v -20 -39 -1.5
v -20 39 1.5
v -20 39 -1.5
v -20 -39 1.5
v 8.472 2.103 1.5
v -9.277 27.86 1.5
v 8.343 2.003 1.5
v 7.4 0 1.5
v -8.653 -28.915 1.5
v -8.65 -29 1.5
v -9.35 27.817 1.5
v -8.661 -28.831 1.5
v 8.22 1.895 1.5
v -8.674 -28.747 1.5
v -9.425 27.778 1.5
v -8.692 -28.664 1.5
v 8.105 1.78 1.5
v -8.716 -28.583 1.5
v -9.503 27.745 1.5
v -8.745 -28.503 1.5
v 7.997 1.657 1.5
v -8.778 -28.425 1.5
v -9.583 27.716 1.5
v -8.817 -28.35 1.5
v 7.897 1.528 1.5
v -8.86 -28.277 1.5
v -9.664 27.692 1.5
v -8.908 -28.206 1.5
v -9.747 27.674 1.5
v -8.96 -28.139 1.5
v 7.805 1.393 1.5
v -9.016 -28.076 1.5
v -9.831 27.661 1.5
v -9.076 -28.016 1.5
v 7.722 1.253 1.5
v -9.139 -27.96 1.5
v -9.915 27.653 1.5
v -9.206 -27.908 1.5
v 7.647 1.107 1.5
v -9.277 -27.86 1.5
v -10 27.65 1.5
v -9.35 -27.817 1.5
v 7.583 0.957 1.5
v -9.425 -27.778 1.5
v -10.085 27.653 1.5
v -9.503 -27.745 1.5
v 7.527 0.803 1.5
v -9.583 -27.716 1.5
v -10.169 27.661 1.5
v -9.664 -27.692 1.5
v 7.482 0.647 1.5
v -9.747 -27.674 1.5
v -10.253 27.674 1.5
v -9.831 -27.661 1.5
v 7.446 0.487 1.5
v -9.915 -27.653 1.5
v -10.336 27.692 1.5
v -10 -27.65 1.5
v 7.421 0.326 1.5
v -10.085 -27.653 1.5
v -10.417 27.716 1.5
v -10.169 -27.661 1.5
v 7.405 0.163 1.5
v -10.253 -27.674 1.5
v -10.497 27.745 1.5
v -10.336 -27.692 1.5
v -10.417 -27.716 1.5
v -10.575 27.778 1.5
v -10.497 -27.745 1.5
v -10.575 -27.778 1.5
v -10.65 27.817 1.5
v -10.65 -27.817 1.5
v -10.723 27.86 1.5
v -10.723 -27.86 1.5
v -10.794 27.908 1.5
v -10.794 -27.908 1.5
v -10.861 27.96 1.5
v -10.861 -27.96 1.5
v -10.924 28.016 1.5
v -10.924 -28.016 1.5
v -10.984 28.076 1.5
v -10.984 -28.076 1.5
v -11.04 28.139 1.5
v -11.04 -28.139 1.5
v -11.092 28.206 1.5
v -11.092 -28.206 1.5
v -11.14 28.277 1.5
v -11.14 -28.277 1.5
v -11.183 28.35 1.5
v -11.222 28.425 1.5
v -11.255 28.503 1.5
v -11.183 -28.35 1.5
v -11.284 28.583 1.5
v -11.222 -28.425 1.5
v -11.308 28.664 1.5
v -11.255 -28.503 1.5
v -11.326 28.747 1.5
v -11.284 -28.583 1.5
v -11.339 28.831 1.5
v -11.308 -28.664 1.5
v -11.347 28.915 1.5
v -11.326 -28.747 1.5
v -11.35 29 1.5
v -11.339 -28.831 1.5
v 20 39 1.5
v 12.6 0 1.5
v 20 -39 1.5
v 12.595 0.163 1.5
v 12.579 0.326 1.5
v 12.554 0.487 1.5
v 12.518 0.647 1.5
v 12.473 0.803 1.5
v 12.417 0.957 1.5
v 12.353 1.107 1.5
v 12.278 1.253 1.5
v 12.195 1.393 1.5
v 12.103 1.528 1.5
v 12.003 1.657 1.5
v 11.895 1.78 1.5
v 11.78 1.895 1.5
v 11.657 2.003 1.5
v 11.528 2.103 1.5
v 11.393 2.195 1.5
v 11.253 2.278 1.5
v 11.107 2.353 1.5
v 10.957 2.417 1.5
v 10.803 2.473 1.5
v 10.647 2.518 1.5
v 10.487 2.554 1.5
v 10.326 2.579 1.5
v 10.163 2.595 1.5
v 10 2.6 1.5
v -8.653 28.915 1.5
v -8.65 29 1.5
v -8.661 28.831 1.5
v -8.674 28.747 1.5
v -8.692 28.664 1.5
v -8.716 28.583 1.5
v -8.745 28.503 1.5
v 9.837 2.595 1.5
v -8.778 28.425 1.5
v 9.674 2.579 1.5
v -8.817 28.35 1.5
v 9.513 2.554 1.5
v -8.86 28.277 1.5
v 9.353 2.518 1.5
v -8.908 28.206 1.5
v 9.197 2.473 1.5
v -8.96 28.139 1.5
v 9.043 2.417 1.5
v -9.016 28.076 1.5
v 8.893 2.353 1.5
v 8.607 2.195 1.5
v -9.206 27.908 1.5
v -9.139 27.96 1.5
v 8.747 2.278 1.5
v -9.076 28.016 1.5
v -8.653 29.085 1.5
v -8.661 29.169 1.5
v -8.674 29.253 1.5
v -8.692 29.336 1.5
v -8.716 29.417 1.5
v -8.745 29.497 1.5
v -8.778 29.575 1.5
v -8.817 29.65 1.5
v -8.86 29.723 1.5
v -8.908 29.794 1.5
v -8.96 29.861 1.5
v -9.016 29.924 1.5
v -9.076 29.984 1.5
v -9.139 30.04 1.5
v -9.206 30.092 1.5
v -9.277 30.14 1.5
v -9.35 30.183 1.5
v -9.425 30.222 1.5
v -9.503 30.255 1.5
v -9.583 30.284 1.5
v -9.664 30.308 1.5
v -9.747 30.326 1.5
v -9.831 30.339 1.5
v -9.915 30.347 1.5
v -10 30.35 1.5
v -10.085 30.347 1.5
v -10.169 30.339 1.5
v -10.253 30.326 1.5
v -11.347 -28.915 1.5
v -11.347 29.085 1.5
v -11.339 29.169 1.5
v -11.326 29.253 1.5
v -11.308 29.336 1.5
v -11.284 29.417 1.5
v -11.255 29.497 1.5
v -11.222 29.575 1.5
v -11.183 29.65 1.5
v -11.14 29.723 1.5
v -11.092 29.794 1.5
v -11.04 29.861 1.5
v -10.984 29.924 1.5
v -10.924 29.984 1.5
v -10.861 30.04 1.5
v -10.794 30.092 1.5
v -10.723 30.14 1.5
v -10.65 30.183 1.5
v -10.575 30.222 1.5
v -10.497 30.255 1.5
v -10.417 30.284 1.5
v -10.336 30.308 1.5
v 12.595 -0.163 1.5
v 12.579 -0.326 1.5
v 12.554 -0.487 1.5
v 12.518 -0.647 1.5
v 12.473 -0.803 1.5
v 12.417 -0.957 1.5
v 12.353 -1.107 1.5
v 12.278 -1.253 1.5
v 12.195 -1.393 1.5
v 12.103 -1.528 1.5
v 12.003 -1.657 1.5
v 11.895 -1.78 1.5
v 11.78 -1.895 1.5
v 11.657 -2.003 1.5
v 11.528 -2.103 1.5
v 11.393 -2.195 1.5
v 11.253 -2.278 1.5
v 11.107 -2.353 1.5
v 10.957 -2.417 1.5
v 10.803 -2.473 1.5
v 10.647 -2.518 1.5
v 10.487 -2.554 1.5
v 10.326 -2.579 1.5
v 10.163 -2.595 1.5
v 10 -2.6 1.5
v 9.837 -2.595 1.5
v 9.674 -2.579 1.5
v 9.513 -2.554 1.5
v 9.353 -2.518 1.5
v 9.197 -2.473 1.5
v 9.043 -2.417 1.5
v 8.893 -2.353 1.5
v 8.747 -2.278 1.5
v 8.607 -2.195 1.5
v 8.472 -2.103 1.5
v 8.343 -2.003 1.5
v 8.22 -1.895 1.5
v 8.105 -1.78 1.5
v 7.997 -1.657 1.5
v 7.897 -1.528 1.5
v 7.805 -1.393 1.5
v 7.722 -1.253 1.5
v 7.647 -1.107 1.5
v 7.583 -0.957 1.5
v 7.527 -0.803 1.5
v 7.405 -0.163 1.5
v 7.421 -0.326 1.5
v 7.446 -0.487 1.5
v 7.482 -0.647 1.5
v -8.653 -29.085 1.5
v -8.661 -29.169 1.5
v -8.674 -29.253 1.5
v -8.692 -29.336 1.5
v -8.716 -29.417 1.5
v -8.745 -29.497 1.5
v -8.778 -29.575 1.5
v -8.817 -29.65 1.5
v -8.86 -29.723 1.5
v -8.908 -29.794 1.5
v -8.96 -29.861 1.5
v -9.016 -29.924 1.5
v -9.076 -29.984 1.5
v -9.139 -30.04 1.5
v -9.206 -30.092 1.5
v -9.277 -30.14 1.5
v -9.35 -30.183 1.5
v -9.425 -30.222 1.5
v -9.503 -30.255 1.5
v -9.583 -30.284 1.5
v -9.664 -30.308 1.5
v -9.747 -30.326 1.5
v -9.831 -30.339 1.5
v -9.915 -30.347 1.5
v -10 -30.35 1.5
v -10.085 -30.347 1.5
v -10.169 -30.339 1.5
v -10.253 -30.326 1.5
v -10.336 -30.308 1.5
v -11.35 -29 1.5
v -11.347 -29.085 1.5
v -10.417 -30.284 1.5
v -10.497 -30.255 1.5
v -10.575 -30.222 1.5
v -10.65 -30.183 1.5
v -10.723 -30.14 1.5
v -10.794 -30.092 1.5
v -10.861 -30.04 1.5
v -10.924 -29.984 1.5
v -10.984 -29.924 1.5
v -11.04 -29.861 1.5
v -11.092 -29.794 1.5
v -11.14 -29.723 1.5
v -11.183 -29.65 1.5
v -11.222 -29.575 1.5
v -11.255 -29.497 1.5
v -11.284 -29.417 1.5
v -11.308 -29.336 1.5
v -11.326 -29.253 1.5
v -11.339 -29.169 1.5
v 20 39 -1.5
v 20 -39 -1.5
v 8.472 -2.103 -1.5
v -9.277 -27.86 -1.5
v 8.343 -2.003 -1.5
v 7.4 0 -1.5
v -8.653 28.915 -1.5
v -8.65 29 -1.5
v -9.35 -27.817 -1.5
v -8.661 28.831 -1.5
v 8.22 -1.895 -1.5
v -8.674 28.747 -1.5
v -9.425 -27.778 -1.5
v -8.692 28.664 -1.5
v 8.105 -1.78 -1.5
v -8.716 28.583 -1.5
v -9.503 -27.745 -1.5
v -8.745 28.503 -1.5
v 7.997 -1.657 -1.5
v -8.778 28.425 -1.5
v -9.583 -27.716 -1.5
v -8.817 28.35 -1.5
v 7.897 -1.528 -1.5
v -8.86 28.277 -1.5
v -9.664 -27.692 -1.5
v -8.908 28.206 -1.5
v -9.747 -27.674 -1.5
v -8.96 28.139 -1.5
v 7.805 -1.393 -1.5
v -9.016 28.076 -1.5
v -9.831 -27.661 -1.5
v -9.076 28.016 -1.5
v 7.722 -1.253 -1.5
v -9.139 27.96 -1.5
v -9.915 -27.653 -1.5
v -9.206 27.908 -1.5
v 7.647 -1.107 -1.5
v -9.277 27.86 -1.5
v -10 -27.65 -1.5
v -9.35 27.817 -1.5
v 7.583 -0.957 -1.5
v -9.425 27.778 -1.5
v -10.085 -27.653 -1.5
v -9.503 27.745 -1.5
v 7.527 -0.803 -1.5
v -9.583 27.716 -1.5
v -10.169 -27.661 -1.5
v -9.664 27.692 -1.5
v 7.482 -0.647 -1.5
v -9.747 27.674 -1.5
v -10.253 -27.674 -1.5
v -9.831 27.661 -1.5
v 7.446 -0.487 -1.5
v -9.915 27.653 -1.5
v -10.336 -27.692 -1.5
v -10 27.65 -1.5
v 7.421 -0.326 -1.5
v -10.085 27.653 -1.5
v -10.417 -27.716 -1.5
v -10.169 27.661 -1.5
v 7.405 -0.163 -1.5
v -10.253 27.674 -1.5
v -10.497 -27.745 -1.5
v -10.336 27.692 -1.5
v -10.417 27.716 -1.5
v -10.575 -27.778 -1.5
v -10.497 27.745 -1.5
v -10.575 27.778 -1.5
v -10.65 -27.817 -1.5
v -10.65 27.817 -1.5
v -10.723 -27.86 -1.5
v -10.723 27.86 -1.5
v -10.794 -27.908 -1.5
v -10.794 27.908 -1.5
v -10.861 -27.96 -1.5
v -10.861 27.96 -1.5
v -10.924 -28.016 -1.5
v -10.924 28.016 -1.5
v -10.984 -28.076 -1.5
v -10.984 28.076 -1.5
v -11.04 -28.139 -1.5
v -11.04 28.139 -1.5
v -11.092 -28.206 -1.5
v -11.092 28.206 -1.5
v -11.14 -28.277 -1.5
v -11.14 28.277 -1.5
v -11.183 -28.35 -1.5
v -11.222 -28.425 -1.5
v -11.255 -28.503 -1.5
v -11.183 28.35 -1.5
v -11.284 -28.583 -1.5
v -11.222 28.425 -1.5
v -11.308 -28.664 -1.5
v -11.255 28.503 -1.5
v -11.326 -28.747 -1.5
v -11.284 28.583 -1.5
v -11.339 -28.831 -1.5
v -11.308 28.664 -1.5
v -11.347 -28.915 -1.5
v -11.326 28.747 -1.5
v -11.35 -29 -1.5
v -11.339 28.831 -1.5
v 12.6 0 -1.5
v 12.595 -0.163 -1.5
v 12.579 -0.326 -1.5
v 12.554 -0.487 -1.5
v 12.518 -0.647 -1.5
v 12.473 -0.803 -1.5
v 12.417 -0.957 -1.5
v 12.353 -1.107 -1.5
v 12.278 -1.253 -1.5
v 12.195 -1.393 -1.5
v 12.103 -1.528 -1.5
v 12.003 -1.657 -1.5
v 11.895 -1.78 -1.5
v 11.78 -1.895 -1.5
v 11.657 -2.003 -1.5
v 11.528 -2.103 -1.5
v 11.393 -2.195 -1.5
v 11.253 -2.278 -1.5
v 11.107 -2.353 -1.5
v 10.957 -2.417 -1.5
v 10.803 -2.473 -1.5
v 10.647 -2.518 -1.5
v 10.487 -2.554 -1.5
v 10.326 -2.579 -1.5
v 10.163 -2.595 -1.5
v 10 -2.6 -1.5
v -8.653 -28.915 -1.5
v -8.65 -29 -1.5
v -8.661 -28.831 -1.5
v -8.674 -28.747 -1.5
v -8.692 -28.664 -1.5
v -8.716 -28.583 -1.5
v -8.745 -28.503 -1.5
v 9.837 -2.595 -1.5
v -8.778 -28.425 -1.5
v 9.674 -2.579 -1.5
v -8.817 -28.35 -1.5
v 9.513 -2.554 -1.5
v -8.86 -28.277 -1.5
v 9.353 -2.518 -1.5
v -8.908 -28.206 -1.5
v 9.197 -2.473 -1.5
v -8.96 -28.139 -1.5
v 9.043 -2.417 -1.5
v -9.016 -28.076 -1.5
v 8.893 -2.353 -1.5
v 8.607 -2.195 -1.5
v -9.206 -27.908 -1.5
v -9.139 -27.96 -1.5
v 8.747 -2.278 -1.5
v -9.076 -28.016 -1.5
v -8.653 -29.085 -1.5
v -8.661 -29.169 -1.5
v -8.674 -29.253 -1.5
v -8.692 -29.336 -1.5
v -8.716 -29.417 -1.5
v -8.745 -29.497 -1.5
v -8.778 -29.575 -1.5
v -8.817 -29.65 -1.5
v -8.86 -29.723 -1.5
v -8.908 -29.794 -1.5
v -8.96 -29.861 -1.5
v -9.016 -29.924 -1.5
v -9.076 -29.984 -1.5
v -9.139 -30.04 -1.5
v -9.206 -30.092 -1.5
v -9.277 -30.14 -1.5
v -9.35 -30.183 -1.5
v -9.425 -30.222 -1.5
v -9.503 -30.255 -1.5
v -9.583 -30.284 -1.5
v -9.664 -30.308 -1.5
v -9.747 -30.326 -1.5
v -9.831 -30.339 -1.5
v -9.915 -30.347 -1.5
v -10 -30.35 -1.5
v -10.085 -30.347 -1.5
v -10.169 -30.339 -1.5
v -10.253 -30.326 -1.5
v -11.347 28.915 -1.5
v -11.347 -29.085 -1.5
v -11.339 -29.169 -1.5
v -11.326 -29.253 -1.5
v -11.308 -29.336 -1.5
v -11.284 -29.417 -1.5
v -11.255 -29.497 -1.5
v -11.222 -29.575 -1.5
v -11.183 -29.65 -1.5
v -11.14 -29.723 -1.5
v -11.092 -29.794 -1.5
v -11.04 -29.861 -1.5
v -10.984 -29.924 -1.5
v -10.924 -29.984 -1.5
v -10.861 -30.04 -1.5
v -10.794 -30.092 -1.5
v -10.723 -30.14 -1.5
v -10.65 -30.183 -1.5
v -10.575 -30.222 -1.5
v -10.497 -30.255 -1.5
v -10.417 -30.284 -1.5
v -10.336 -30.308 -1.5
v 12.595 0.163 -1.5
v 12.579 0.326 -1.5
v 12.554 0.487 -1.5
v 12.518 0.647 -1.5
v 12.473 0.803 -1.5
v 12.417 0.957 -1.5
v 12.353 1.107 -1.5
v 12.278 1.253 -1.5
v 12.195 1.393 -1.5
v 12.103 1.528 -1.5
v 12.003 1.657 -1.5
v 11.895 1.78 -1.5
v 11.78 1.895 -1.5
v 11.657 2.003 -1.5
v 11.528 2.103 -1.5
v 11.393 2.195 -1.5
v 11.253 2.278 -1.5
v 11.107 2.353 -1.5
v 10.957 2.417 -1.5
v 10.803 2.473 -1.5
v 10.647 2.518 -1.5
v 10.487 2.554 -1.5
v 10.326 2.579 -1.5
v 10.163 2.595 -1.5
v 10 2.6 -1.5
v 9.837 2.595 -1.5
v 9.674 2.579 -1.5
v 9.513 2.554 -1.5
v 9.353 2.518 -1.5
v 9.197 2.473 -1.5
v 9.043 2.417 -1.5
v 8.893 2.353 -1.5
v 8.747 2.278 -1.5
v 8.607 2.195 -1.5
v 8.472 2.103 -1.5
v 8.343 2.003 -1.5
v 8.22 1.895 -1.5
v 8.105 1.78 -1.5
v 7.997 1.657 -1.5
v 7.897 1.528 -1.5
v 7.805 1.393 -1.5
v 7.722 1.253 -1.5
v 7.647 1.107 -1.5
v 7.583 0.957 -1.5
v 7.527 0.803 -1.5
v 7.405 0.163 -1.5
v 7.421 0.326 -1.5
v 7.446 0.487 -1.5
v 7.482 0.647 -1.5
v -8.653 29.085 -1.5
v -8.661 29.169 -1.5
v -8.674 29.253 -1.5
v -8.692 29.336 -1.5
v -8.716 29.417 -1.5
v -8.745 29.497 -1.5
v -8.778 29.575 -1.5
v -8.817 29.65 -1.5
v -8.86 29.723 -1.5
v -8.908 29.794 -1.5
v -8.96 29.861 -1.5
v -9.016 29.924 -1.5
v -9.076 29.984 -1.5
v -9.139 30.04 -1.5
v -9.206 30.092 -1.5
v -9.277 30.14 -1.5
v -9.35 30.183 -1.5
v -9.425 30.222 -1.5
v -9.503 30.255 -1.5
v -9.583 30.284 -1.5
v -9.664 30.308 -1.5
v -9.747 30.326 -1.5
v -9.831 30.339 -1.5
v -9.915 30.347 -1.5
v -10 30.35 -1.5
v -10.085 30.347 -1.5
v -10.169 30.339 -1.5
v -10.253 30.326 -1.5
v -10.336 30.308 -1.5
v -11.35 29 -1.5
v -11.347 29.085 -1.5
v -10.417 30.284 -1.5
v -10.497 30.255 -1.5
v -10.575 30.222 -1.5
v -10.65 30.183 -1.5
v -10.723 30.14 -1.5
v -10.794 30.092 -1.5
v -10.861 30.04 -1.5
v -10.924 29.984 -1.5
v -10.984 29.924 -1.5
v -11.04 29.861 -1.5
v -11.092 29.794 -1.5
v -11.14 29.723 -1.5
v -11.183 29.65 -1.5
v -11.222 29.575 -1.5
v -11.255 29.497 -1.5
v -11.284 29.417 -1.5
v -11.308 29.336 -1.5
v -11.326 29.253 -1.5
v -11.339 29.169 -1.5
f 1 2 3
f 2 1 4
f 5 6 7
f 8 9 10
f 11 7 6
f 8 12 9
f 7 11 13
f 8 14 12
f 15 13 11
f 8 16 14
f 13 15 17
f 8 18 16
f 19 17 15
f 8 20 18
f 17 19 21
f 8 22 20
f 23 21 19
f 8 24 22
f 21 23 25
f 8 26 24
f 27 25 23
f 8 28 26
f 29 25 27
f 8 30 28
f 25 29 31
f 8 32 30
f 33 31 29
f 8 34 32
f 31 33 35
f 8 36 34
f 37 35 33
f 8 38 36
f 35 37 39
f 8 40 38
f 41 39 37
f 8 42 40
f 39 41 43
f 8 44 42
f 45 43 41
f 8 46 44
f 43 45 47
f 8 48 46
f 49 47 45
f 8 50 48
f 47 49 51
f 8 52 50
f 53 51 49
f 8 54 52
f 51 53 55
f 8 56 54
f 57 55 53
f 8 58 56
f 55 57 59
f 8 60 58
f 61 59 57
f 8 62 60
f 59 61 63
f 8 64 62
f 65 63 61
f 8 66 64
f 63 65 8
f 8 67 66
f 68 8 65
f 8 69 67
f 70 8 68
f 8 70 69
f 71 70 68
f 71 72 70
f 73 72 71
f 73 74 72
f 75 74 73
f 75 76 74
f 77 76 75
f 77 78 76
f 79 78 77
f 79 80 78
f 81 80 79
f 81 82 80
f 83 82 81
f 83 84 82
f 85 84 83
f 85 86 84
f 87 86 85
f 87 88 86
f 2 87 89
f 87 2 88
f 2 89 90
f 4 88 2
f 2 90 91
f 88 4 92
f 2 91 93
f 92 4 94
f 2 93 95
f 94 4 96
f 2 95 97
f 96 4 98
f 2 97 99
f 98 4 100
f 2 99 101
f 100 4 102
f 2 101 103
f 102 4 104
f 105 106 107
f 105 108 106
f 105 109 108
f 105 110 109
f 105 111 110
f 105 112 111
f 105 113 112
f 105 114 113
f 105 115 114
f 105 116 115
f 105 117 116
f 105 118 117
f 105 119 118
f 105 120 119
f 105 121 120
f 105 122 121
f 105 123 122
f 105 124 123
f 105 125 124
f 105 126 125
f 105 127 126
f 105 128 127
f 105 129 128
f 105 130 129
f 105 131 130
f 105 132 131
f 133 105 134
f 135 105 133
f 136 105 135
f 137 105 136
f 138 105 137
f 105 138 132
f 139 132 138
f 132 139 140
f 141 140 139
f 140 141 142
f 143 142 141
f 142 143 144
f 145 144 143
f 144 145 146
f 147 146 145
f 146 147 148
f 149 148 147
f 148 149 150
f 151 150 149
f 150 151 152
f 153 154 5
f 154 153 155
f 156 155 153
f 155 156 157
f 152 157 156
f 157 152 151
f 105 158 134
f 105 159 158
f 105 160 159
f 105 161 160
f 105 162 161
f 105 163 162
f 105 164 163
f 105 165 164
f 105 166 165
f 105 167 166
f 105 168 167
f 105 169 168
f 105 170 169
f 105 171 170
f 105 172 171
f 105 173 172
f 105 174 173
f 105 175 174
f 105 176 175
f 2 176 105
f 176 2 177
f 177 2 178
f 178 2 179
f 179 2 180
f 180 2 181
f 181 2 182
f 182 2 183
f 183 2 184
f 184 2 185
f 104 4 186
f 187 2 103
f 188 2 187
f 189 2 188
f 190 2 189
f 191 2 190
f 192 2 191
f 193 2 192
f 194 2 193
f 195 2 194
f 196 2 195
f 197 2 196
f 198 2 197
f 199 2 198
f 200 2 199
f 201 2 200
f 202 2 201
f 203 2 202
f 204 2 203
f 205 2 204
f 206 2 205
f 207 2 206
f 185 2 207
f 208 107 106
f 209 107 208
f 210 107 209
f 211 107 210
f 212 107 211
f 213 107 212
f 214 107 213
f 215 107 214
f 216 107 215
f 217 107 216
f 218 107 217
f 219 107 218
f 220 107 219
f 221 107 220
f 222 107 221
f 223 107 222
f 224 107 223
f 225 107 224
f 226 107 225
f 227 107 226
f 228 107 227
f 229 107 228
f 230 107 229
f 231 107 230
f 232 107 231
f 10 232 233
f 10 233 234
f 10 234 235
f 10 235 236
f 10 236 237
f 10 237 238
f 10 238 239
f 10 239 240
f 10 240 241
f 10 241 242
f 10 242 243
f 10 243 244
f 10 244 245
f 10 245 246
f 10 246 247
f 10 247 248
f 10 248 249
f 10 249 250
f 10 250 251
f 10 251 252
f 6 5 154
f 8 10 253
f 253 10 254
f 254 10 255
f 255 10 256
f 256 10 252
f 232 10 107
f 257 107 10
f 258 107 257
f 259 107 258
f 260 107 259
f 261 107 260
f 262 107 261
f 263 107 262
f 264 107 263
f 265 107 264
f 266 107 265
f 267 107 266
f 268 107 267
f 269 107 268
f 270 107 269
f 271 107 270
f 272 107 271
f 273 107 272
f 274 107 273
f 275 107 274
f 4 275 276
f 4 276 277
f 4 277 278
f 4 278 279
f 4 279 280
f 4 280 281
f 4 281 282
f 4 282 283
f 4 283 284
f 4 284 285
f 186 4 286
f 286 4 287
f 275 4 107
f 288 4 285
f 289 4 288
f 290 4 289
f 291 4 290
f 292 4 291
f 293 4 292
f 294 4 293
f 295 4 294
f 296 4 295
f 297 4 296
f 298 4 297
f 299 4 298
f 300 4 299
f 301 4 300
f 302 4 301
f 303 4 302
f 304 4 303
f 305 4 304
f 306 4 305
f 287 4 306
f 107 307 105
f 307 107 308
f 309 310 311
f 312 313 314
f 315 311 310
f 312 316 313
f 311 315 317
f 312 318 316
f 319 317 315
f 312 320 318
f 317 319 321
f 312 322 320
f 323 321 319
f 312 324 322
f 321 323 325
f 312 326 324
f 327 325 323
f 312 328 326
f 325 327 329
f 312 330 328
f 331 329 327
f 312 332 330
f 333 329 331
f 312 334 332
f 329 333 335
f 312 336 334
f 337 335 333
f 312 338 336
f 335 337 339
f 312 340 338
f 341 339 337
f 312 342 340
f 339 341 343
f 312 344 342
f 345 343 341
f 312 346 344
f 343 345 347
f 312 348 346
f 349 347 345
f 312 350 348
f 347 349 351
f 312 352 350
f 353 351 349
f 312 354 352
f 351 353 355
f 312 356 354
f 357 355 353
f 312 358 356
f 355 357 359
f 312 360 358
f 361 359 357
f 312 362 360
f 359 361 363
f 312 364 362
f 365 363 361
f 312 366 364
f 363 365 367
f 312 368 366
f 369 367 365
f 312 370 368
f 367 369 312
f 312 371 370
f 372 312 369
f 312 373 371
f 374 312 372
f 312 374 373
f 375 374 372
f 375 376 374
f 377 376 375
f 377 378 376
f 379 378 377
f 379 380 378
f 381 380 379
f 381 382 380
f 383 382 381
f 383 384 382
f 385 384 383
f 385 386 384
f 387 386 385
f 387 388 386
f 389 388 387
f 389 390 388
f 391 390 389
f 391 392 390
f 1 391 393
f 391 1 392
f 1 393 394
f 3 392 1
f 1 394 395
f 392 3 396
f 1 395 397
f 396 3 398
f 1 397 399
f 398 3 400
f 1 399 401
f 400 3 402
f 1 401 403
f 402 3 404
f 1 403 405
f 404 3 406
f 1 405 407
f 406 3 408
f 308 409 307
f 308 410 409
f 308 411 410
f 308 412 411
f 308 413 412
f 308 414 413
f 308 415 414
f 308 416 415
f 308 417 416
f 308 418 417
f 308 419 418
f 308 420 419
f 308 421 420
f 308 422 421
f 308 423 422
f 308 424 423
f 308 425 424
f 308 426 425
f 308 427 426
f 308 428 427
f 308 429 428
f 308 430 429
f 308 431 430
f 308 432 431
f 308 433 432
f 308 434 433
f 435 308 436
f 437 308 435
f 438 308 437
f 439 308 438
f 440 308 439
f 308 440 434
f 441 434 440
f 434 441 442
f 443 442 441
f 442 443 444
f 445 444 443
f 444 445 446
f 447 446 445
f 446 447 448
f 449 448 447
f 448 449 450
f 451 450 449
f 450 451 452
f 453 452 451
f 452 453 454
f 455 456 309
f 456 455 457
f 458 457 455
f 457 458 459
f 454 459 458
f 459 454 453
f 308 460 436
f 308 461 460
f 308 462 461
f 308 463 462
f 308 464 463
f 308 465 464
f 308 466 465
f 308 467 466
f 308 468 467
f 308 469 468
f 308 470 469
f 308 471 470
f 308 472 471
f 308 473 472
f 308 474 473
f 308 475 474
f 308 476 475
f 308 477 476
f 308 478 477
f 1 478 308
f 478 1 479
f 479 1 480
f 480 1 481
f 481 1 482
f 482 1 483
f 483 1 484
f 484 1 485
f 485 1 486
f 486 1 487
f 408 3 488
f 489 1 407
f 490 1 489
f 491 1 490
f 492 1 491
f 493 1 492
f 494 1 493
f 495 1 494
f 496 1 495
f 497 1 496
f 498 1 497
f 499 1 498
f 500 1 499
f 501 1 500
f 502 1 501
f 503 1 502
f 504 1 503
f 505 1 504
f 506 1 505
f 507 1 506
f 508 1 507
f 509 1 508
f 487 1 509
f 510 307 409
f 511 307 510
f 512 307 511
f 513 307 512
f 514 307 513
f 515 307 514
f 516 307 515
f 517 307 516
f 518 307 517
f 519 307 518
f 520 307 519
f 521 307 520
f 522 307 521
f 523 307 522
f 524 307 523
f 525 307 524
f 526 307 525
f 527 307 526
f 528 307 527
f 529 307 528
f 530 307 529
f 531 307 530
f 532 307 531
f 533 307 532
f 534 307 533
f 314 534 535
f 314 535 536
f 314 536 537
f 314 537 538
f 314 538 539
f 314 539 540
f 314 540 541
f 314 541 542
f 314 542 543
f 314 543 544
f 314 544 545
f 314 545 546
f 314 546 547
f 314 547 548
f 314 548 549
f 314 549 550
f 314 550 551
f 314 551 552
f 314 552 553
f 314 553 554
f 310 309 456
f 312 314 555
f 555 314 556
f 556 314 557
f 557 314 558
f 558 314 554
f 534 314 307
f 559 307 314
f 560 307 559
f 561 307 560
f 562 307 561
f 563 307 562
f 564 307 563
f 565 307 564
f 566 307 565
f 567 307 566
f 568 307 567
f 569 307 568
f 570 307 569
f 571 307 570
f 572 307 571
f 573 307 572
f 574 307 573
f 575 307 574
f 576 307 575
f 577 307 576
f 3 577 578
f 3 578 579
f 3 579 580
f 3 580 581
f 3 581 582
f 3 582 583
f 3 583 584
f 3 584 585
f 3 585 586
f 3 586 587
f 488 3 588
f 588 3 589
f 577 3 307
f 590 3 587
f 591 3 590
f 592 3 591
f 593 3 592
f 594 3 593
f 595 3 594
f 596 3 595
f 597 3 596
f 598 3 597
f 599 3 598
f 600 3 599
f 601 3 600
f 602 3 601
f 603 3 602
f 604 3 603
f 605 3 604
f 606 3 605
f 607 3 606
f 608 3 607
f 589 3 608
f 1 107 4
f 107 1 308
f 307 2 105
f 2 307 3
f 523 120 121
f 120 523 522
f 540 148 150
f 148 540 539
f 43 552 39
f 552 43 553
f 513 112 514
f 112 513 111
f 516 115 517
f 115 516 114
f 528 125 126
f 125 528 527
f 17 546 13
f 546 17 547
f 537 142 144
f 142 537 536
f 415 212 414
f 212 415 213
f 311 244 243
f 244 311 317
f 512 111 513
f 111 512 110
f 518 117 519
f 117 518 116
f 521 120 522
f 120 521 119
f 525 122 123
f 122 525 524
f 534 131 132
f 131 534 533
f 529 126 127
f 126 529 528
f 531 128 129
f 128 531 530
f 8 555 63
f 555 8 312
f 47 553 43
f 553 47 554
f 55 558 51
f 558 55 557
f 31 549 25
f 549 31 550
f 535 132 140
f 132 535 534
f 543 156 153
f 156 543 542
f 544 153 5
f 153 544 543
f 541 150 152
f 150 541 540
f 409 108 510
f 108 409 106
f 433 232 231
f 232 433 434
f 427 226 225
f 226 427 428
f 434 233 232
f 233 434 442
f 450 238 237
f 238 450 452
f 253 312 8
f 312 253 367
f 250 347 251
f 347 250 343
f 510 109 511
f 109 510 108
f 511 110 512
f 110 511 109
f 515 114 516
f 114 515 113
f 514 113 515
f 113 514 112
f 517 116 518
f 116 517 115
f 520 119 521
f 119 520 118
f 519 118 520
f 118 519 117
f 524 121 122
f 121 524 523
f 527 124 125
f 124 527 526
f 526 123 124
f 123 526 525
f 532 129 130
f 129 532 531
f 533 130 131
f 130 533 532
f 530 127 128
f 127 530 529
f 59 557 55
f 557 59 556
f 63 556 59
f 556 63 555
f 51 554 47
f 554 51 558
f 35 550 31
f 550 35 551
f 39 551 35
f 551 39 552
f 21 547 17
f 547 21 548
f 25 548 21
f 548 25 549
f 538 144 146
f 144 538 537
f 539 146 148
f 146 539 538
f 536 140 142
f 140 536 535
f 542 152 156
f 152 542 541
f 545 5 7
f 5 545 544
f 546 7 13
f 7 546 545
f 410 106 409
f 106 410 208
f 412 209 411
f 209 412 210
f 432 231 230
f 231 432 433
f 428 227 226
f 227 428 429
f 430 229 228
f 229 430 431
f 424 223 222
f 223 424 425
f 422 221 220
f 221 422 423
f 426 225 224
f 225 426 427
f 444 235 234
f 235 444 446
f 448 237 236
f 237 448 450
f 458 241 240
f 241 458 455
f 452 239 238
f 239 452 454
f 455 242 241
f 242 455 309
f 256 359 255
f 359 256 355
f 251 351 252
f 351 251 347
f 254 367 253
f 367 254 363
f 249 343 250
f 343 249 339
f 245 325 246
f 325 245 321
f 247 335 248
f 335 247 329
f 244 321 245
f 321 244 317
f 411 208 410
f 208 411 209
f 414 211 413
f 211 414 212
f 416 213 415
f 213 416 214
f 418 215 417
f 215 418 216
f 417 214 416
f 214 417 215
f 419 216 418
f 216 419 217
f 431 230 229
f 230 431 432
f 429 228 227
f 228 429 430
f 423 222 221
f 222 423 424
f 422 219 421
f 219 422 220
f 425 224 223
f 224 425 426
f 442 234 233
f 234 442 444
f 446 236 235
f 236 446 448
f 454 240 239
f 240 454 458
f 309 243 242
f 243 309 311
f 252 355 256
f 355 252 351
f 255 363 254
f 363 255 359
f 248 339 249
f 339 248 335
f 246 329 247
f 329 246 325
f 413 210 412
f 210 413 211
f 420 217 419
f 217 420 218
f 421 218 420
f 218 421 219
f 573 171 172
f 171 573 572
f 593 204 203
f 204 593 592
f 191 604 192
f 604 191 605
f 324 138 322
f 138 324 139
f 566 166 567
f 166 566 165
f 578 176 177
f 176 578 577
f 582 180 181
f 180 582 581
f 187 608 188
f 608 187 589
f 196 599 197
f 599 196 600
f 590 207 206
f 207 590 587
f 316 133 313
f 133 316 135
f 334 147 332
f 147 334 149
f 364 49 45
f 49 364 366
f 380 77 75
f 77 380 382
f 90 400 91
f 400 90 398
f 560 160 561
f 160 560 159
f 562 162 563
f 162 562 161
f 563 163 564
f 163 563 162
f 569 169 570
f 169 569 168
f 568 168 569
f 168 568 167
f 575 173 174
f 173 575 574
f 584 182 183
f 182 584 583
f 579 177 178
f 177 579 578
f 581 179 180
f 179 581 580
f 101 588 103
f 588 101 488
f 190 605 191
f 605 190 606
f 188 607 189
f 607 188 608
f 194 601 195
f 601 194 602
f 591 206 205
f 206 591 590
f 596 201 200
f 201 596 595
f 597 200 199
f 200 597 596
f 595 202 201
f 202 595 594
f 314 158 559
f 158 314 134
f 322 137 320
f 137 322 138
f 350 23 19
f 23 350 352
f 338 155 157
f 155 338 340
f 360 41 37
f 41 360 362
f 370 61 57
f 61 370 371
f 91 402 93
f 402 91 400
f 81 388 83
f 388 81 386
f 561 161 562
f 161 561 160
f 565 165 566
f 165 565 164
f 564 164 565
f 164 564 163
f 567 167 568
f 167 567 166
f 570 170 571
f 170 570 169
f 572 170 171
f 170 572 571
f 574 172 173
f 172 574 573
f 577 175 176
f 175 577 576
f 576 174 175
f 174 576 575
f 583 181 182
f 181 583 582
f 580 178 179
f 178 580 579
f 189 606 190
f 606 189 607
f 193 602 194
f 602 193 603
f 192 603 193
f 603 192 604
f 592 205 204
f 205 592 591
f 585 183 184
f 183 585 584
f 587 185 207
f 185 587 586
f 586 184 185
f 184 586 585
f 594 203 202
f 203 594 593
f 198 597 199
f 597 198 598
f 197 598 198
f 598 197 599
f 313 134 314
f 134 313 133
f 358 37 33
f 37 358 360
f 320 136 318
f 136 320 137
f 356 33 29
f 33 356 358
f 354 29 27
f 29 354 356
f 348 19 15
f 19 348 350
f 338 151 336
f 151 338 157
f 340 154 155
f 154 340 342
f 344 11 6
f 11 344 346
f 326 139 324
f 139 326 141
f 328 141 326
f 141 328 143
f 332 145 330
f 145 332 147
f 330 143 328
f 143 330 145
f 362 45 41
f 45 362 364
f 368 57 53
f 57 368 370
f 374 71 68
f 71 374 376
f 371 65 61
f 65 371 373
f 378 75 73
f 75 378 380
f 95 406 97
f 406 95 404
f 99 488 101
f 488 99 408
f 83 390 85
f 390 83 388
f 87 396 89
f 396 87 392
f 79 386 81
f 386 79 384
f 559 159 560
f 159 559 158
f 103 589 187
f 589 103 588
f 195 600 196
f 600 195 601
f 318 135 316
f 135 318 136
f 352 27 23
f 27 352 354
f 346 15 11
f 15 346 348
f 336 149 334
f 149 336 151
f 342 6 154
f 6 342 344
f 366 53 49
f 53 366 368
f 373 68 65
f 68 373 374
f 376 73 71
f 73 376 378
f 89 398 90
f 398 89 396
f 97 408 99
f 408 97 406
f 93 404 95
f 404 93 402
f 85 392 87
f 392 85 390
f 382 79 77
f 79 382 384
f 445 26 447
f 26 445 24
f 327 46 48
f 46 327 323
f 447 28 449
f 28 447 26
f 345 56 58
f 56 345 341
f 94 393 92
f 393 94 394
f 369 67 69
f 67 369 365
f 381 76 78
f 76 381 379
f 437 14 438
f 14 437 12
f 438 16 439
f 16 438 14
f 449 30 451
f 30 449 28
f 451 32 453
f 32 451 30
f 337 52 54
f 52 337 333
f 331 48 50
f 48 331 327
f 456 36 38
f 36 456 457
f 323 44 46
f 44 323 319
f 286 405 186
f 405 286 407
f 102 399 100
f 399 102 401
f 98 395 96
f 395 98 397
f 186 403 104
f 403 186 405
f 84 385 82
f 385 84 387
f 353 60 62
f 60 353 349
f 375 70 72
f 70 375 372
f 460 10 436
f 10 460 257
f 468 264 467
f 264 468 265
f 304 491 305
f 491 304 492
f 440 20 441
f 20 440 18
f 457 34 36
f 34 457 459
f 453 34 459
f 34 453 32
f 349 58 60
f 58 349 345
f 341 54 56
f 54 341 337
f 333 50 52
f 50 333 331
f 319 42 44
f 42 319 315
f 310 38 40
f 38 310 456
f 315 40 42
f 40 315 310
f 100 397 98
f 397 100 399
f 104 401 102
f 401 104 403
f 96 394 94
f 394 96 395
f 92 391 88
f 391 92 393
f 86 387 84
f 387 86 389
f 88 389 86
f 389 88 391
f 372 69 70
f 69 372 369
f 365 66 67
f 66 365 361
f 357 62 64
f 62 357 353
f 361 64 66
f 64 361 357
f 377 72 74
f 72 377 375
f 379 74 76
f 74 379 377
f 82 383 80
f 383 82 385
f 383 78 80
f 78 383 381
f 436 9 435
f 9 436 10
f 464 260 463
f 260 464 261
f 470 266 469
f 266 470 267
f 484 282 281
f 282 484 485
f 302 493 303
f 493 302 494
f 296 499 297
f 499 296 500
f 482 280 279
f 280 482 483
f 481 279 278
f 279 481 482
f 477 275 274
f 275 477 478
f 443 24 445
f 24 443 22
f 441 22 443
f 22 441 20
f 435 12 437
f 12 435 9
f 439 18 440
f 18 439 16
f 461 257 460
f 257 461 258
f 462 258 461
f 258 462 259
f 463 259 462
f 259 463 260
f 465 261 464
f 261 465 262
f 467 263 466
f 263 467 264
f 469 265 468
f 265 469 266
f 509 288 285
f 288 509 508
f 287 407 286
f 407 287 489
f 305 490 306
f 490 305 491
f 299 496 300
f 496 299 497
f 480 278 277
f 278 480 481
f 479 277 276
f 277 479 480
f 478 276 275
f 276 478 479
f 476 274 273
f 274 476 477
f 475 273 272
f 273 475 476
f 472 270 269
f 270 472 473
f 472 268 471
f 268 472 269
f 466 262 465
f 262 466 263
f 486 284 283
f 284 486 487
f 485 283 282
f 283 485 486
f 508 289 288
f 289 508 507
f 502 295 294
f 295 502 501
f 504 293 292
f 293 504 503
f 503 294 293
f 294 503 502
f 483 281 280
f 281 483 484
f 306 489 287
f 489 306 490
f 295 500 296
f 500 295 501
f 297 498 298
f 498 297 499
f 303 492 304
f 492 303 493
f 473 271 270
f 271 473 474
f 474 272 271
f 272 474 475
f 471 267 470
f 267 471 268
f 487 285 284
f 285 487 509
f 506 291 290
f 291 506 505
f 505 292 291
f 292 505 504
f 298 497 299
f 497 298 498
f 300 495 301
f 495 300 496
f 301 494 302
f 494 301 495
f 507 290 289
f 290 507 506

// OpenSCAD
$fn=100;

bh=58;
m25=2.7/2;
z=3;
buffer=20;
m5=2.6;
w=40;

difference(){
    cube([w,bh+buffer,z],center=true);
    translate([w/2-10,0,-10])
    cylinder(100,m5,m5);
    translate([-(w/2-10),bh/2,-10])
    cylinder(100,m25,m25);
    translate([-(w/2-10),-bh/2,-10])
    cylinder(100,m25,m25);
    
}
